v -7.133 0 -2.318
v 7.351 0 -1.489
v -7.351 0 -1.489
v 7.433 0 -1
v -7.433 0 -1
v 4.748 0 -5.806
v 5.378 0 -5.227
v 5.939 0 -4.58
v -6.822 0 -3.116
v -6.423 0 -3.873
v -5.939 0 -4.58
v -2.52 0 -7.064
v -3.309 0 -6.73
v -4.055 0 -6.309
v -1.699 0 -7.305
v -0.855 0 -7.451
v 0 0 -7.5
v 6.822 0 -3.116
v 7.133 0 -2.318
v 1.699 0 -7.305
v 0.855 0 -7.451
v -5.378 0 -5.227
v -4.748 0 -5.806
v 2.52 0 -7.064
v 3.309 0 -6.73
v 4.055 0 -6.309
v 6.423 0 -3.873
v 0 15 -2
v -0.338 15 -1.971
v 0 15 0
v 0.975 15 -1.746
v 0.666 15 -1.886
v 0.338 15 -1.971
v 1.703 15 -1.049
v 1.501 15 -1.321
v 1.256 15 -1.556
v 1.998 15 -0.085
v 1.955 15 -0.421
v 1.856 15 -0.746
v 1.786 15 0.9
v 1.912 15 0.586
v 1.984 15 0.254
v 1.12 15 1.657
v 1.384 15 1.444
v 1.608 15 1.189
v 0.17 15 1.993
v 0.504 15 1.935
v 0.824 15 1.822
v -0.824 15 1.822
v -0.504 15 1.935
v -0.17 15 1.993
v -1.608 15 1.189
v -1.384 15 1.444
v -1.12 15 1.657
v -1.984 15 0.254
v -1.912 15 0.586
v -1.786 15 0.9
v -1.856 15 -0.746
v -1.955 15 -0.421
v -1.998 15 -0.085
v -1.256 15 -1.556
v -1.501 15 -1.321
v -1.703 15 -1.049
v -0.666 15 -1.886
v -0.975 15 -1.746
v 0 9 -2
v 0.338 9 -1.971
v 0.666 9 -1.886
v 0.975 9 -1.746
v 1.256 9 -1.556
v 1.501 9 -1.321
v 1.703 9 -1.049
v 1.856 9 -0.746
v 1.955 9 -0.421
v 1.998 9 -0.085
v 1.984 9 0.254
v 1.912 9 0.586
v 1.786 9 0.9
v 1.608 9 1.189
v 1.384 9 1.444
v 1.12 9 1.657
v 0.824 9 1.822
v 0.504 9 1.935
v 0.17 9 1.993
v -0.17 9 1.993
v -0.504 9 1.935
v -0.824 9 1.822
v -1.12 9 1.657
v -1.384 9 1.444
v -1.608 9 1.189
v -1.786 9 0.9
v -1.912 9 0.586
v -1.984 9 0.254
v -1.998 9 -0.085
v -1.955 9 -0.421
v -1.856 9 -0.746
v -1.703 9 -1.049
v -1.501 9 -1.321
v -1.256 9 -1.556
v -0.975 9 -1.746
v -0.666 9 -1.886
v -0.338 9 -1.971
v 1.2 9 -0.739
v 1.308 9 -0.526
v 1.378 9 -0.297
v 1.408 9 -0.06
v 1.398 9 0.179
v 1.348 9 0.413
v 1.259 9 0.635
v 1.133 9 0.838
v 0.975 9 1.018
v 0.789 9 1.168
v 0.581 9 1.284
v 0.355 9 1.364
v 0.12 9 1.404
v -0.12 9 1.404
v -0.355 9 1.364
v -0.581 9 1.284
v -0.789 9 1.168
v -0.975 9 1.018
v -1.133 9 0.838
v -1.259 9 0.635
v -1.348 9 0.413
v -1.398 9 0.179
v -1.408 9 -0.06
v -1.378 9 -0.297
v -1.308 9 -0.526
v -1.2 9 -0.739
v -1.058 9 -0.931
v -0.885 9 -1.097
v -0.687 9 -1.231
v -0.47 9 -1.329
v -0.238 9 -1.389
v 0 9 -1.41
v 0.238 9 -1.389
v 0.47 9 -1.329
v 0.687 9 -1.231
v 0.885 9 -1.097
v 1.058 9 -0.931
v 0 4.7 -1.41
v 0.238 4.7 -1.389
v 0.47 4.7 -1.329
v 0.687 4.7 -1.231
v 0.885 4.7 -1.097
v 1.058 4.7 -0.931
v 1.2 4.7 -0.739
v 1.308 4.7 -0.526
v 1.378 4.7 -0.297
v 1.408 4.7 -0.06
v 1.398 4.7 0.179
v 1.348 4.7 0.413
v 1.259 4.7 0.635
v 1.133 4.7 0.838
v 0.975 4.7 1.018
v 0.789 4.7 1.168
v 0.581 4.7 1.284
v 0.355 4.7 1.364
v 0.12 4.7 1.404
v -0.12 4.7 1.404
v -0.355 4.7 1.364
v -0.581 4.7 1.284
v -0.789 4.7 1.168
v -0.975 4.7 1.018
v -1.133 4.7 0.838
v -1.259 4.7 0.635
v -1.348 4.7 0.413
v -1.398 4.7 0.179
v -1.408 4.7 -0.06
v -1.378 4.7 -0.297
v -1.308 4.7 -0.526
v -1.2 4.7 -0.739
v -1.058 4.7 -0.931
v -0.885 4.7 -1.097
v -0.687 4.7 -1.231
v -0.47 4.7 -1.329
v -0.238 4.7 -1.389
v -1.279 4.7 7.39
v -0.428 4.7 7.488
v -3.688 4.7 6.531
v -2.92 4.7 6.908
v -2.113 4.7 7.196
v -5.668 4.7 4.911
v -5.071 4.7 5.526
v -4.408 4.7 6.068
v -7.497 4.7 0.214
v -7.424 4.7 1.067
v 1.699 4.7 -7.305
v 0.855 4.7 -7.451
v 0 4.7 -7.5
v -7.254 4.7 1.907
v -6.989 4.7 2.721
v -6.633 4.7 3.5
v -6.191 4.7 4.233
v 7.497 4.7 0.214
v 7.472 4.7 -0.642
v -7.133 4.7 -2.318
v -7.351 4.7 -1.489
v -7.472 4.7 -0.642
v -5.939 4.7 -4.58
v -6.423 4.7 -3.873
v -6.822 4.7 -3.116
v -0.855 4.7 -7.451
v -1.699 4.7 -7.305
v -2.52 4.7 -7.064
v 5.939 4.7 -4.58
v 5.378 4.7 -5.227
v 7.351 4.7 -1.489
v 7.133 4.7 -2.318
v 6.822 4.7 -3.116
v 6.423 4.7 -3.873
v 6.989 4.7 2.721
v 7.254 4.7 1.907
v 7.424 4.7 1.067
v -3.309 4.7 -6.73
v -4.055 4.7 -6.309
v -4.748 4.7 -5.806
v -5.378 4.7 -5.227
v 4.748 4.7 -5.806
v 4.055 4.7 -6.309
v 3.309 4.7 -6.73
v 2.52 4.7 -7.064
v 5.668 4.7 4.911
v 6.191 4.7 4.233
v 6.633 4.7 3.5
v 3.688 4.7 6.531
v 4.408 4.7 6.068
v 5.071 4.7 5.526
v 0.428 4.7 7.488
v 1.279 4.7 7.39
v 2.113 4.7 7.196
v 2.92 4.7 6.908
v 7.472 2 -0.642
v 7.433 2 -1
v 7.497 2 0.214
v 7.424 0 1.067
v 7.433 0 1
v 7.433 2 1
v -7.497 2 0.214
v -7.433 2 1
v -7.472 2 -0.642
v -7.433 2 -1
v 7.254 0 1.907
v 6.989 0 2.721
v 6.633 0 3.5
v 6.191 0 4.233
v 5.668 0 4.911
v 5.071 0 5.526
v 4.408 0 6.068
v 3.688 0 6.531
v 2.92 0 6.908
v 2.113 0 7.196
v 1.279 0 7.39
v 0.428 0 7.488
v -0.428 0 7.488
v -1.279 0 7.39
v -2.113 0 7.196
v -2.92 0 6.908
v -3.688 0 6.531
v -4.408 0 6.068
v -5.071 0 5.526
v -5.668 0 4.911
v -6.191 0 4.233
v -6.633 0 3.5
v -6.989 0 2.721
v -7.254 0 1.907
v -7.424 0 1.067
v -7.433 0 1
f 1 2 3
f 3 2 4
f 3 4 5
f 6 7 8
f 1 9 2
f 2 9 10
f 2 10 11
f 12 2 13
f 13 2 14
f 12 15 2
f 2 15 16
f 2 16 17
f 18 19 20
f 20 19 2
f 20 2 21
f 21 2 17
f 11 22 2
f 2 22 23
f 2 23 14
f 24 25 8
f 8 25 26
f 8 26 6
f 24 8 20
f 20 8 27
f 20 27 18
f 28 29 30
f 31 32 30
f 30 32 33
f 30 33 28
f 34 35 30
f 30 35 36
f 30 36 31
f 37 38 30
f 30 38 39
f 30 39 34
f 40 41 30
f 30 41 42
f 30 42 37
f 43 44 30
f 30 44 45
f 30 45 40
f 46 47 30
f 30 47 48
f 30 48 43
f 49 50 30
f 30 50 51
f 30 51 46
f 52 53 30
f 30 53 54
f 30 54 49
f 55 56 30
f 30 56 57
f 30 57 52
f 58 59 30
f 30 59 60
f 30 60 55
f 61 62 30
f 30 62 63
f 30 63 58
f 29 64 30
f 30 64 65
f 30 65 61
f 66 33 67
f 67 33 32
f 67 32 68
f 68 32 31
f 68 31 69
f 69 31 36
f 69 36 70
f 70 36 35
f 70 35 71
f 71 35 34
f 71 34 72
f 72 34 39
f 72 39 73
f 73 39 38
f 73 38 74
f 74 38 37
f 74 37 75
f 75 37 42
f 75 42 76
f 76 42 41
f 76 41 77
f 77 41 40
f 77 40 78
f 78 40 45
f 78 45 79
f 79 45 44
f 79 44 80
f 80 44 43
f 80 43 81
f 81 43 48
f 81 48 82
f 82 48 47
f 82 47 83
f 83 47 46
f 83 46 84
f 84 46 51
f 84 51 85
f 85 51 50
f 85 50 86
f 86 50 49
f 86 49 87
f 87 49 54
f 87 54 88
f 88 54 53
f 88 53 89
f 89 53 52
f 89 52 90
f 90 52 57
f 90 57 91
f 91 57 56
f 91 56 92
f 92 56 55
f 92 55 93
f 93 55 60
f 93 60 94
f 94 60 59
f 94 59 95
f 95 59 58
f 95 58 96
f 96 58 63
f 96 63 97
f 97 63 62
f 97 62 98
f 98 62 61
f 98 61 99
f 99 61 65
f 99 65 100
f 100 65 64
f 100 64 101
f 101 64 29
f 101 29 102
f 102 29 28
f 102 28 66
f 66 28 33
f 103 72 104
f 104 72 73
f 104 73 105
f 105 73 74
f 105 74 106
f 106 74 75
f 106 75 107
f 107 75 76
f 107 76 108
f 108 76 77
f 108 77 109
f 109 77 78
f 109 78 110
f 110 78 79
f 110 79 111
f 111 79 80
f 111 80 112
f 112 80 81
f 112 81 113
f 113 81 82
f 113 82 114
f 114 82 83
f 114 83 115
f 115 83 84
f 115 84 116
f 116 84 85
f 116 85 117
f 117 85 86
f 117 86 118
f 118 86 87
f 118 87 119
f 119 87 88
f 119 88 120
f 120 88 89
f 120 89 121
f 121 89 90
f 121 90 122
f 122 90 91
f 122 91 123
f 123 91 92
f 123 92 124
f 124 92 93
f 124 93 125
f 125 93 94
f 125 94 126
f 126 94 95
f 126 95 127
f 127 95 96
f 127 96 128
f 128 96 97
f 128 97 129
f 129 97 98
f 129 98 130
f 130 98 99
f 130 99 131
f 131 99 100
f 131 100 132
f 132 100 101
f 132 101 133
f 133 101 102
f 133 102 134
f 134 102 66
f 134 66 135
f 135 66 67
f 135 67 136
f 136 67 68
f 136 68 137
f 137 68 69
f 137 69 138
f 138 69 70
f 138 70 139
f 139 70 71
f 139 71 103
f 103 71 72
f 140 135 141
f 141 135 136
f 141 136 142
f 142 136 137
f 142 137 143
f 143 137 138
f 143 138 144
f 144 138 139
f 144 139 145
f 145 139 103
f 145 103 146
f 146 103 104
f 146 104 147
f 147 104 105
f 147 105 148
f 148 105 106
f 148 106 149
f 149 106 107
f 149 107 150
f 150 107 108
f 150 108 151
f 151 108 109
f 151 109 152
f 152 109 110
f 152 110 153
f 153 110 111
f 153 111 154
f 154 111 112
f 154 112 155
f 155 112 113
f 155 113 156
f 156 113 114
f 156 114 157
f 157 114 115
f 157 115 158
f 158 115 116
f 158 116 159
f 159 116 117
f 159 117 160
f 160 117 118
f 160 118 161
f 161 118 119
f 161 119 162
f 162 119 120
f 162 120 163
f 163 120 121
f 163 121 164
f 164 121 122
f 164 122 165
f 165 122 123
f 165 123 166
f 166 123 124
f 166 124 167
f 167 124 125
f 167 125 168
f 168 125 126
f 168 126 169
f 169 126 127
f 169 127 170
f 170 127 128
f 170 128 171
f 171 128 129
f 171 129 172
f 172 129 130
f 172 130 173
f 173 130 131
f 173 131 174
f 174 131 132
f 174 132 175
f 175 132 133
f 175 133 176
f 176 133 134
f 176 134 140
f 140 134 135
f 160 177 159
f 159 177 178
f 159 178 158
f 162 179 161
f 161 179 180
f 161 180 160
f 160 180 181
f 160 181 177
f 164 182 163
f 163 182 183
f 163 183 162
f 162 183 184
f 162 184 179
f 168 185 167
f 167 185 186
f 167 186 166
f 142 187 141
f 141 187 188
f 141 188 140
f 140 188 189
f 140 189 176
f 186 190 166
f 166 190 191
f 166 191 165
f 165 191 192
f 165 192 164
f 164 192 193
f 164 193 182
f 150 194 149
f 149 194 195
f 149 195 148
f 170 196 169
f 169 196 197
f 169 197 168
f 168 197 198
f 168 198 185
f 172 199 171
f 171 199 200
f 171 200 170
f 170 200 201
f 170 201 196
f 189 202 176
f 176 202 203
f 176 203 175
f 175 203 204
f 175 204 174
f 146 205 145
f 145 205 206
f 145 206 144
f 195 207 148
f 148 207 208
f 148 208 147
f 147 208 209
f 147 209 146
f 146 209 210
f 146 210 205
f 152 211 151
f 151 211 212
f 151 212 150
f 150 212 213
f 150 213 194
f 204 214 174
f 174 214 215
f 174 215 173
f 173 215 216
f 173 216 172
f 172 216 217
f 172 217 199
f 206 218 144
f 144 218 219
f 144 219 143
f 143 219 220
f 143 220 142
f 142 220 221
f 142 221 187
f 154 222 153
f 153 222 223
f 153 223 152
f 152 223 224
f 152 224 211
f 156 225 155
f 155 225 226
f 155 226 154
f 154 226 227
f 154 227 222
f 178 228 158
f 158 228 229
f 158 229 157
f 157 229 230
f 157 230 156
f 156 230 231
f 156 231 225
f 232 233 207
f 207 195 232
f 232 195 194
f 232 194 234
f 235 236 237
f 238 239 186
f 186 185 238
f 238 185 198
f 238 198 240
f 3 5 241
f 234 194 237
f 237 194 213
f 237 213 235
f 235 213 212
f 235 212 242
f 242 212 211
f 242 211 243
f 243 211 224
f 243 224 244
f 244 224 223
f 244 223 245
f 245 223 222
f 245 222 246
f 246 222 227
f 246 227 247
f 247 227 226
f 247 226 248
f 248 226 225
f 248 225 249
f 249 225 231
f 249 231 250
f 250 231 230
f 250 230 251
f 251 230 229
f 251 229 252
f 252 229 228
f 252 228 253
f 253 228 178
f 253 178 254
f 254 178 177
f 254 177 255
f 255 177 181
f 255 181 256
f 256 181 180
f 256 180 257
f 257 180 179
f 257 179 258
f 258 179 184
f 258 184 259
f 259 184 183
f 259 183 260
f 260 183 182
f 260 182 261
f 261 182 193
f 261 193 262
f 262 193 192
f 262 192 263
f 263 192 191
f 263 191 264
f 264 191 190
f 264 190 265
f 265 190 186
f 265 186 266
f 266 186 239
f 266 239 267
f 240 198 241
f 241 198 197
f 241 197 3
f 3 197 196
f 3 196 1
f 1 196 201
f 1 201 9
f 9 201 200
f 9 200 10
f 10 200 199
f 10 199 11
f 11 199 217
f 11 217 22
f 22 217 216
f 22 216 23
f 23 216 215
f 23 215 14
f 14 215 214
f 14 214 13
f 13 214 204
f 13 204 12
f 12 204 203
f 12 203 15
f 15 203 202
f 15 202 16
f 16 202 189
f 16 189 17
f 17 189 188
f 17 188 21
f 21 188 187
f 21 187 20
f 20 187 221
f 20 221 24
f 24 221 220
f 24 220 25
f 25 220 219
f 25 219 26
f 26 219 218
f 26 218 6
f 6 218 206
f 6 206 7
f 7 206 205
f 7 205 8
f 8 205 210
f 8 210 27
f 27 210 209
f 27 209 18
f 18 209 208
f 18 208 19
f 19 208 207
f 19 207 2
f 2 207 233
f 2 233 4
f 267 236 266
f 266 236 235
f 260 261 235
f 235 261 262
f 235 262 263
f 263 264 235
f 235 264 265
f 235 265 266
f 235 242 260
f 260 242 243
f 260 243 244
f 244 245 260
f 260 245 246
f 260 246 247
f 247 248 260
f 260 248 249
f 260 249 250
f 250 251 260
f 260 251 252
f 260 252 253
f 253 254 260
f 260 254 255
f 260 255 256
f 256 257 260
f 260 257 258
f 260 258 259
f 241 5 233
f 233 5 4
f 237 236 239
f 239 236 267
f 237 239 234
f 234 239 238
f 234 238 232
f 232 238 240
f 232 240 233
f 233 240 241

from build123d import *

# Parameters (mm, degrees)
SCHIZZO2_W               = 20.11559051
SCHIZZO2_H               = 2
TAGLIO_ESTRUSIONE1_DEPTH = 2


with BuildPart() as part:
    # Schizzo1 → Rivoluzione1 (revolve)
    with BuildSketch(Plane.XY):
        Polygon((0, 15), (2, 15), (2, 9), (1.409533837, 9), (1.409533837, 4.7), (7.5, 4.7), (7.5, 0), (0, 0), align=None)
    revolve(axis=Axis((0, -3.578292252, 0), (0, 1, 0)))

    # Schizzo2 → Taglio-Estrusione1 (cut)
    with BuildSketch(Plane.XZ):
        Rectangle(SCHIZZO2_W, SCHIZZO2_H)
    extrude(amount=-TAGLIO_ESTRUSIONE1_DEPTH, mode=Mode.SUBTRACT)


solid = part.part
